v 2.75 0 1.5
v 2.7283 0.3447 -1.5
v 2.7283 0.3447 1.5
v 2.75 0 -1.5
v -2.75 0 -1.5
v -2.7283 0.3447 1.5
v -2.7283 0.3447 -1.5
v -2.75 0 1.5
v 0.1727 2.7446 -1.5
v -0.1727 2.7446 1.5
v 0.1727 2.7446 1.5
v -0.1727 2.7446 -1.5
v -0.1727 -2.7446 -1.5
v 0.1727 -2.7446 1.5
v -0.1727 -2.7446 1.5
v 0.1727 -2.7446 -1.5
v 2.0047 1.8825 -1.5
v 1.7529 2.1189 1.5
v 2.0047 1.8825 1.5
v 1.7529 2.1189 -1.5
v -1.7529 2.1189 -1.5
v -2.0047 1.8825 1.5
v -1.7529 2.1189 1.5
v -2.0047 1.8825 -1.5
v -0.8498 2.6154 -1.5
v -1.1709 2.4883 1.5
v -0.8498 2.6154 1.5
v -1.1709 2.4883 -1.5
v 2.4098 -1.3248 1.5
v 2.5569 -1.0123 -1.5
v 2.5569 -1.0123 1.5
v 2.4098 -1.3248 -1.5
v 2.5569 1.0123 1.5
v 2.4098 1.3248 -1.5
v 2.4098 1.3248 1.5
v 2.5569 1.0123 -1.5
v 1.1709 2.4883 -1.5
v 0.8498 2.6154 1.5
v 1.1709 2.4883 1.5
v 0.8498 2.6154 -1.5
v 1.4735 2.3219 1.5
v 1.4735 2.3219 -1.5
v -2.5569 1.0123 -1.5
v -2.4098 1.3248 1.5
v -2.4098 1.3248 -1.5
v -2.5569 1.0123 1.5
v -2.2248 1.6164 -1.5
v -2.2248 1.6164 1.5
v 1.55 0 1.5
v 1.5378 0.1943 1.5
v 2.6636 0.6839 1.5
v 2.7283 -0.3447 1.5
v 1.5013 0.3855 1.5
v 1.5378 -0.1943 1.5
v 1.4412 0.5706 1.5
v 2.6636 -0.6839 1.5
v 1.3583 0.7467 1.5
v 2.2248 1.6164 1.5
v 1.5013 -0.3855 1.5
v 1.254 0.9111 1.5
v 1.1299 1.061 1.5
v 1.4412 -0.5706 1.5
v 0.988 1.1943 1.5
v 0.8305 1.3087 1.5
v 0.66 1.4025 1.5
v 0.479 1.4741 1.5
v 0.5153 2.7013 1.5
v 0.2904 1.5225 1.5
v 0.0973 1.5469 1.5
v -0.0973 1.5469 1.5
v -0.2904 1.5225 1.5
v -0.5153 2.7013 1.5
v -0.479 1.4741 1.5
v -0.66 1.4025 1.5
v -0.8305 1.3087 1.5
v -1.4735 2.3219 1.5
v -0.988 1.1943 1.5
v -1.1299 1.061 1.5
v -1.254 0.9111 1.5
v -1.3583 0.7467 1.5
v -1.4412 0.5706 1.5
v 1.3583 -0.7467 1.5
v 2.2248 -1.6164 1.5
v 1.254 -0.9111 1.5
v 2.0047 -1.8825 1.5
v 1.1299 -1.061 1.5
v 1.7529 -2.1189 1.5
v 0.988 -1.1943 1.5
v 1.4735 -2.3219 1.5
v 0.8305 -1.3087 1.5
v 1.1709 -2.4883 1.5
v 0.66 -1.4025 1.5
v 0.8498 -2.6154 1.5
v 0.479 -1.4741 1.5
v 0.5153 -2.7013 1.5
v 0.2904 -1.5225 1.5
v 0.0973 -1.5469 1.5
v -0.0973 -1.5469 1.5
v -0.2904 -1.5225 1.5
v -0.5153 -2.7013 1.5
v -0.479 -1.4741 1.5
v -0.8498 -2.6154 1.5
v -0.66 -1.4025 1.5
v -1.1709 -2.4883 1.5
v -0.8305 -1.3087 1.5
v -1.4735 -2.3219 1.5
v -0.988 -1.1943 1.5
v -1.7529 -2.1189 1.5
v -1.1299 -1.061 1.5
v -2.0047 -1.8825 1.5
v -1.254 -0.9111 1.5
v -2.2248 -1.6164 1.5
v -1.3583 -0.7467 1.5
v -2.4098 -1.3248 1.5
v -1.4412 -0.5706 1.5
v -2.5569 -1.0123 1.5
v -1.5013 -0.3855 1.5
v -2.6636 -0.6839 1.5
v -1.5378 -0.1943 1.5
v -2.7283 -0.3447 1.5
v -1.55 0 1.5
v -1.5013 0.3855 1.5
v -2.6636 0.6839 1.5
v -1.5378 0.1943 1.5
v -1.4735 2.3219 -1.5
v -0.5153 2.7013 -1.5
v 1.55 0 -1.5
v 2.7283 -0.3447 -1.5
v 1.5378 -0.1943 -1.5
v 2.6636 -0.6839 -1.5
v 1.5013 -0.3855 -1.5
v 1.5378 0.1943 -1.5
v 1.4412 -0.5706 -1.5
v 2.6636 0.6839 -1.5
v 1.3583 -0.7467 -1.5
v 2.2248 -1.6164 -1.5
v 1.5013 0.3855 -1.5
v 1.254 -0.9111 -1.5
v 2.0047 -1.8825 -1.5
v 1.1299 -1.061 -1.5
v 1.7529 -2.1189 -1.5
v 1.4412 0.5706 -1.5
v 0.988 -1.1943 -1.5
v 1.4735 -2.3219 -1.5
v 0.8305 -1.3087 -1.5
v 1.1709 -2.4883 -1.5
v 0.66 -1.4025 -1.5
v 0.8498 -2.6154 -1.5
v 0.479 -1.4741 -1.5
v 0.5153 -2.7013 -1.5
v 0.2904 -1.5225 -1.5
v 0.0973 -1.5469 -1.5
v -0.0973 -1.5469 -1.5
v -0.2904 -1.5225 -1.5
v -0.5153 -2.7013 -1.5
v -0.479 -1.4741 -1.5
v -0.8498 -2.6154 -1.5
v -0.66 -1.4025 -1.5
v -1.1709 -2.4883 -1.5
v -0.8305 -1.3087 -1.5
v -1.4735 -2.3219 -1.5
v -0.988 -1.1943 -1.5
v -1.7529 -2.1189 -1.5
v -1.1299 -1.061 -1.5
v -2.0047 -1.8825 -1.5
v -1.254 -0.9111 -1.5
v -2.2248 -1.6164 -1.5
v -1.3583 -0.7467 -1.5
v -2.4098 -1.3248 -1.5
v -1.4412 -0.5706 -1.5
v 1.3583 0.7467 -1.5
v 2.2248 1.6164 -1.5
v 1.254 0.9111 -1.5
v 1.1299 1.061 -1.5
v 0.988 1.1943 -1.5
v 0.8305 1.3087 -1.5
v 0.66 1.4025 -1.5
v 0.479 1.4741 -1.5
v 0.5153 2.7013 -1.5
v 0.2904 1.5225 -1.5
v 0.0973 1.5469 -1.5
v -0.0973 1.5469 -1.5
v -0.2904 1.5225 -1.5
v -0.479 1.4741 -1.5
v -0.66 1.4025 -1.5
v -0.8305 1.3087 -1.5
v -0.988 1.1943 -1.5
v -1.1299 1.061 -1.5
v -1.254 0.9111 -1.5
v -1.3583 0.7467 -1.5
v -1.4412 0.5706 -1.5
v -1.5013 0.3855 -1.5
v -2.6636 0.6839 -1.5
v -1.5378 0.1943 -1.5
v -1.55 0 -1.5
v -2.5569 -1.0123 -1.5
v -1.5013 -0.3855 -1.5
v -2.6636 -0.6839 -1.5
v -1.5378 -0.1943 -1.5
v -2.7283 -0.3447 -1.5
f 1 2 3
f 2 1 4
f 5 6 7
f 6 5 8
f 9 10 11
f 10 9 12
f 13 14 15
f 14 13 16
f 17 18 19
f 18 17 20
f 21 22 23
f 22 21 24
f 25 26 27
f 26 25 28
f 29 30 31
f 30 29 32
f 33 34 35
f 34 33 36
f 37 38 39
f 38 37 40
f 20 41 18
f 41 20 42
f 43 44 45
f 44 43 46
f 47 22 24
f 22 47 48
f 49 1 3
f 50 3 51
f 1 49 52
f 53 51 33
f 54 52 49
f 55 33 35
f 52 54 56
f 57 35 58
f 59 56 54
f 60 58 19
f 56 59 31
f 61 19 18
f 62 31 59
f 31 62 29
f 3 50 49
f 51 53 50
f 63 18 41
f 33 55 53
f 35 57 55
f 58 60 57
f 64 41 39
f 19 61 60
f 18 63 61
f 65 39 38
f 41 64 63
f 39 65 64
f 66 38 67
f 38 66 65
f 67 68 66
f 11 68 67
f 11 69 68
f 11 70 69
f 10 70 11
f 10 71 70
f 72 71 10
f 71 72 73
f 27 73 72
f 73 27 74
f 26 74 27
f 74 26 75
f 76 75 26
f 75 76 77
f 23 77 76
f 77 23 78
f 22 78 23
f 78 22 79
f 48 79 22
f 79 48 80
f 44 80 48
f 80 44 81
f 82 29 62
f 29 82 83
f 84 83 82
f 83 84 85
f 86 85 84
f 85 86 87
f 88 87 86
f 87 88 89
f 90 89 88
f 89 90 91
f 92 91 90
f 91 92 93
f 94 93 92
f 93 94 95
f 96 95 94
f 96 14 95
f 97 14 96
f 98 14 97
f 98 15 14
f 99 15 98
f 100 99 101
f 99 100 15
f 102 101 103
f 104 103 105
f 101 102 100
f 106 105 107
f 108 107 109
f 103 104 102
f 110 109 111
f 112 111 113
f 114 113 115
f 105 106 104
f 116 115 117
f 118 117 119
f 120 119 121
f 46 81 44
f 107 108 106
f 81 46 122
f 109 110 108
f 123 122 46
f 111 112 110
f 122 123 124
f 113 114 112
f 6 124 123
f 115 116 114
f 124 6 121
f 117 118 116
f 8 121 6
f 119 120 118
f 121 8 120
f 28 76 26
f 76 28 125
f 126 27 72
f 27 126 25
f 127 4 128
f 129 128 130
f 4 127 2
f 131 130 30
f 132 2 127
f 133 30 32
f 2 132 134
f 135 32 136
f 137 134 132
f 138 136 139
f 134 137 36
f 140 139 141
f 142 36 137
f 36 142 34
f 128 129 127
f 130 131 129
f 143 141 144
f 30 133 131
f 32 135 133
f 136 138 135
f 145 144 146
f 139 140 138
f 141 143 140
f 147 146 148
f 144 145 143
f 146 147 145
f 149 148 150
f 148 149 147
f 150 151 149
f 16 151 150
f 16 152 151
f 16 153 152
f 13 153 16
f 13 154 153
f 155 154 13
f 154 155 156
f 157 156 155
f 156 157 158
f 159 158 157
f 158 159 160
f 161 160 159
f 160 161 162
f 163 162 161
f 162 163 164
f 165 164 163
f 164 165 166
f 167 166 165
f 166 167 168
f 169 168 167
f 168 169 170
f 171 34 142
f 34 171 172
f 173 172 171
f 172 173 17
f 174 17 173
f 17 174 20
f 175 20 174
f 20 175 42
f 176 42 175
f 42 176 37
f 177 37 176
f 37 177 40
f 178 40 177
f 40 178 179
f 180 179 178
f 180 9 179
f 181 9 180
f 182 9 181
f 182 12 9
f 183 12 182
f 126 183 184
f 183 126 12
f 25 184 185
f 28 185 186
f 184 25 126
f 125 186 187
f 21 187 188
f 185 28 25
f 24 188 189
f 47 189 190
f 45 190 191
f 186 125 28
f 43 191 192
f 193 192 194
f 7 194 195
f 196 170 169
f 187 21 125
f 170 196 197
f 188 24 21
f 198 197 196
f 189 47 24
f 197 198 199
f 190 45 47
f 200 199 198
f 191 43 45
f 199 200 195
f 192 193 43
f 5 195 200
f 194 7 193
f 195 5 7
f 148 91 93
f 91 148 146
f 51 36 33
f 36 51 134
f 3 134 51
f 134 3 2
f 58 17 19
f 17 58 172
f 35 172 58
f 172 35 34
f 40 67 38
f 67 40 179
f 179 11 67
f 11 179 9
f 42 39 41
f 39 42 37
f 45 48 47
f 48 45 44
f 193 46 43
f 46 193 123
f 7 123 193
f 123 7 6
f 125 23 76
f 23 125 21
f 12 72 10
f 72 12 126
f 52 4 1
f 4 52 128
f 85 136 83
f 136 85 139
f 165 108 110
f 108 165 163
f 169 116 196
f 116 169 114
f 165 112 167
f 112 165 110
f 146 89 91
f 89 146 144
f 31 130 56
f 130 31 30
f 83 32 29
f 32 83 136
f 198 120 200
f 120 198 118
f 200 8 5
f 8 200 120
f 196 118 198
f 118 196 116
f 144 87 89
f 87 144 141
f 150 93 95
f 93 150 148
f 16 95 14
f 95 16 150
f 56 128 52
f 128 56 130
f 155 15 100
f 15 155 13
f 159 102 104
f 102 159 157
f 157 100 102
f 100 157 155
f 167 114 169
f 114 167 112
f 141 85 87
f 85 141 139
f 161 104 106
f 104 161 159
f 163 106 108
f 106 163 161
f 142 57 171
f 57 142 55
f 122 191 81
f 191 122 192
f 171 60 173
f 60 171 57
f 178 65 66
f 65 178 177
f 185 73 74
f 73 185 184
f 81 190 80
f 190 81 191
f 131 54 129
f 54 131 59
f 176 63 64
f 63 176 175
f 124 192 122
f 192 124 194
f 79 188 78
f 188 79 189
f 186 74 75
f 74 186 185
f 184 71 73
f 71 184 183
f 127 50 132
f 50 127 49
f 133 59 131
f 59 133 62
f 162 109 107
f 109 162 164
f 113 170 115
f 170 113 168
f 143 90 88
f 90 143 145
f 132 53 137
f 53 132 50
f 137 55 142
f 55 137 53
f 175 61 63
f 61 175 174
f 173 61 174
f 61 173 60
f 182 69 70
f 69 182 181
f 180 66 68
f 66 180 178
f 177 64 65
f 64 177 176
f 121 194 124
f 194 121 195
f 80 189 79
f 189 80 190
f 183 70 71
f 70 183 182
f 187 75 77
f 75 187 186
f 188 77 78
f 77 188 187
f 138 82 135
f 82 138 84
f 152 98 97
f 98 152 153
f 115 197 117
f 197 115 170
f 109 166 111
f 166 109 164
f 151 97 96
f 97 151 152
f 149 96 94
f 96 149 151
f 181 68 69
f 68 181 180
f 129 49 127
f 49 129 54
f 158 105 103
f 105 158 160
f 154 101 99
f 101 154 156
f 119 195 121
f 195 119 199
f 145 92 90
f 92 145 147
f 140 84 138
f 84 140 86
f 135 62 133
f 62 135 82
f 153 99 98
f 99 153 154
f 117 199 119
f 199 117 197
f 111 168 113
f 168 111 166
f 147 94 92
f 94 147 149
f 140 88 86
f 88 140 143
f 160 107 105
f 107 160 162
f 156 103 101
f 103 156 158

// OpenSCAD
$fn = 50;


difference() {
	union() {
		translate(v = [0, 0, -1.5000000000]) {
			cylinder(h = 3, r = 2.7500000000);
		}
	}
	union() {
		translate(v = [0, 0, -100.0000000000]) {
			cylinder(h = 200, r = 1.5500000000);
		}
	}
}
